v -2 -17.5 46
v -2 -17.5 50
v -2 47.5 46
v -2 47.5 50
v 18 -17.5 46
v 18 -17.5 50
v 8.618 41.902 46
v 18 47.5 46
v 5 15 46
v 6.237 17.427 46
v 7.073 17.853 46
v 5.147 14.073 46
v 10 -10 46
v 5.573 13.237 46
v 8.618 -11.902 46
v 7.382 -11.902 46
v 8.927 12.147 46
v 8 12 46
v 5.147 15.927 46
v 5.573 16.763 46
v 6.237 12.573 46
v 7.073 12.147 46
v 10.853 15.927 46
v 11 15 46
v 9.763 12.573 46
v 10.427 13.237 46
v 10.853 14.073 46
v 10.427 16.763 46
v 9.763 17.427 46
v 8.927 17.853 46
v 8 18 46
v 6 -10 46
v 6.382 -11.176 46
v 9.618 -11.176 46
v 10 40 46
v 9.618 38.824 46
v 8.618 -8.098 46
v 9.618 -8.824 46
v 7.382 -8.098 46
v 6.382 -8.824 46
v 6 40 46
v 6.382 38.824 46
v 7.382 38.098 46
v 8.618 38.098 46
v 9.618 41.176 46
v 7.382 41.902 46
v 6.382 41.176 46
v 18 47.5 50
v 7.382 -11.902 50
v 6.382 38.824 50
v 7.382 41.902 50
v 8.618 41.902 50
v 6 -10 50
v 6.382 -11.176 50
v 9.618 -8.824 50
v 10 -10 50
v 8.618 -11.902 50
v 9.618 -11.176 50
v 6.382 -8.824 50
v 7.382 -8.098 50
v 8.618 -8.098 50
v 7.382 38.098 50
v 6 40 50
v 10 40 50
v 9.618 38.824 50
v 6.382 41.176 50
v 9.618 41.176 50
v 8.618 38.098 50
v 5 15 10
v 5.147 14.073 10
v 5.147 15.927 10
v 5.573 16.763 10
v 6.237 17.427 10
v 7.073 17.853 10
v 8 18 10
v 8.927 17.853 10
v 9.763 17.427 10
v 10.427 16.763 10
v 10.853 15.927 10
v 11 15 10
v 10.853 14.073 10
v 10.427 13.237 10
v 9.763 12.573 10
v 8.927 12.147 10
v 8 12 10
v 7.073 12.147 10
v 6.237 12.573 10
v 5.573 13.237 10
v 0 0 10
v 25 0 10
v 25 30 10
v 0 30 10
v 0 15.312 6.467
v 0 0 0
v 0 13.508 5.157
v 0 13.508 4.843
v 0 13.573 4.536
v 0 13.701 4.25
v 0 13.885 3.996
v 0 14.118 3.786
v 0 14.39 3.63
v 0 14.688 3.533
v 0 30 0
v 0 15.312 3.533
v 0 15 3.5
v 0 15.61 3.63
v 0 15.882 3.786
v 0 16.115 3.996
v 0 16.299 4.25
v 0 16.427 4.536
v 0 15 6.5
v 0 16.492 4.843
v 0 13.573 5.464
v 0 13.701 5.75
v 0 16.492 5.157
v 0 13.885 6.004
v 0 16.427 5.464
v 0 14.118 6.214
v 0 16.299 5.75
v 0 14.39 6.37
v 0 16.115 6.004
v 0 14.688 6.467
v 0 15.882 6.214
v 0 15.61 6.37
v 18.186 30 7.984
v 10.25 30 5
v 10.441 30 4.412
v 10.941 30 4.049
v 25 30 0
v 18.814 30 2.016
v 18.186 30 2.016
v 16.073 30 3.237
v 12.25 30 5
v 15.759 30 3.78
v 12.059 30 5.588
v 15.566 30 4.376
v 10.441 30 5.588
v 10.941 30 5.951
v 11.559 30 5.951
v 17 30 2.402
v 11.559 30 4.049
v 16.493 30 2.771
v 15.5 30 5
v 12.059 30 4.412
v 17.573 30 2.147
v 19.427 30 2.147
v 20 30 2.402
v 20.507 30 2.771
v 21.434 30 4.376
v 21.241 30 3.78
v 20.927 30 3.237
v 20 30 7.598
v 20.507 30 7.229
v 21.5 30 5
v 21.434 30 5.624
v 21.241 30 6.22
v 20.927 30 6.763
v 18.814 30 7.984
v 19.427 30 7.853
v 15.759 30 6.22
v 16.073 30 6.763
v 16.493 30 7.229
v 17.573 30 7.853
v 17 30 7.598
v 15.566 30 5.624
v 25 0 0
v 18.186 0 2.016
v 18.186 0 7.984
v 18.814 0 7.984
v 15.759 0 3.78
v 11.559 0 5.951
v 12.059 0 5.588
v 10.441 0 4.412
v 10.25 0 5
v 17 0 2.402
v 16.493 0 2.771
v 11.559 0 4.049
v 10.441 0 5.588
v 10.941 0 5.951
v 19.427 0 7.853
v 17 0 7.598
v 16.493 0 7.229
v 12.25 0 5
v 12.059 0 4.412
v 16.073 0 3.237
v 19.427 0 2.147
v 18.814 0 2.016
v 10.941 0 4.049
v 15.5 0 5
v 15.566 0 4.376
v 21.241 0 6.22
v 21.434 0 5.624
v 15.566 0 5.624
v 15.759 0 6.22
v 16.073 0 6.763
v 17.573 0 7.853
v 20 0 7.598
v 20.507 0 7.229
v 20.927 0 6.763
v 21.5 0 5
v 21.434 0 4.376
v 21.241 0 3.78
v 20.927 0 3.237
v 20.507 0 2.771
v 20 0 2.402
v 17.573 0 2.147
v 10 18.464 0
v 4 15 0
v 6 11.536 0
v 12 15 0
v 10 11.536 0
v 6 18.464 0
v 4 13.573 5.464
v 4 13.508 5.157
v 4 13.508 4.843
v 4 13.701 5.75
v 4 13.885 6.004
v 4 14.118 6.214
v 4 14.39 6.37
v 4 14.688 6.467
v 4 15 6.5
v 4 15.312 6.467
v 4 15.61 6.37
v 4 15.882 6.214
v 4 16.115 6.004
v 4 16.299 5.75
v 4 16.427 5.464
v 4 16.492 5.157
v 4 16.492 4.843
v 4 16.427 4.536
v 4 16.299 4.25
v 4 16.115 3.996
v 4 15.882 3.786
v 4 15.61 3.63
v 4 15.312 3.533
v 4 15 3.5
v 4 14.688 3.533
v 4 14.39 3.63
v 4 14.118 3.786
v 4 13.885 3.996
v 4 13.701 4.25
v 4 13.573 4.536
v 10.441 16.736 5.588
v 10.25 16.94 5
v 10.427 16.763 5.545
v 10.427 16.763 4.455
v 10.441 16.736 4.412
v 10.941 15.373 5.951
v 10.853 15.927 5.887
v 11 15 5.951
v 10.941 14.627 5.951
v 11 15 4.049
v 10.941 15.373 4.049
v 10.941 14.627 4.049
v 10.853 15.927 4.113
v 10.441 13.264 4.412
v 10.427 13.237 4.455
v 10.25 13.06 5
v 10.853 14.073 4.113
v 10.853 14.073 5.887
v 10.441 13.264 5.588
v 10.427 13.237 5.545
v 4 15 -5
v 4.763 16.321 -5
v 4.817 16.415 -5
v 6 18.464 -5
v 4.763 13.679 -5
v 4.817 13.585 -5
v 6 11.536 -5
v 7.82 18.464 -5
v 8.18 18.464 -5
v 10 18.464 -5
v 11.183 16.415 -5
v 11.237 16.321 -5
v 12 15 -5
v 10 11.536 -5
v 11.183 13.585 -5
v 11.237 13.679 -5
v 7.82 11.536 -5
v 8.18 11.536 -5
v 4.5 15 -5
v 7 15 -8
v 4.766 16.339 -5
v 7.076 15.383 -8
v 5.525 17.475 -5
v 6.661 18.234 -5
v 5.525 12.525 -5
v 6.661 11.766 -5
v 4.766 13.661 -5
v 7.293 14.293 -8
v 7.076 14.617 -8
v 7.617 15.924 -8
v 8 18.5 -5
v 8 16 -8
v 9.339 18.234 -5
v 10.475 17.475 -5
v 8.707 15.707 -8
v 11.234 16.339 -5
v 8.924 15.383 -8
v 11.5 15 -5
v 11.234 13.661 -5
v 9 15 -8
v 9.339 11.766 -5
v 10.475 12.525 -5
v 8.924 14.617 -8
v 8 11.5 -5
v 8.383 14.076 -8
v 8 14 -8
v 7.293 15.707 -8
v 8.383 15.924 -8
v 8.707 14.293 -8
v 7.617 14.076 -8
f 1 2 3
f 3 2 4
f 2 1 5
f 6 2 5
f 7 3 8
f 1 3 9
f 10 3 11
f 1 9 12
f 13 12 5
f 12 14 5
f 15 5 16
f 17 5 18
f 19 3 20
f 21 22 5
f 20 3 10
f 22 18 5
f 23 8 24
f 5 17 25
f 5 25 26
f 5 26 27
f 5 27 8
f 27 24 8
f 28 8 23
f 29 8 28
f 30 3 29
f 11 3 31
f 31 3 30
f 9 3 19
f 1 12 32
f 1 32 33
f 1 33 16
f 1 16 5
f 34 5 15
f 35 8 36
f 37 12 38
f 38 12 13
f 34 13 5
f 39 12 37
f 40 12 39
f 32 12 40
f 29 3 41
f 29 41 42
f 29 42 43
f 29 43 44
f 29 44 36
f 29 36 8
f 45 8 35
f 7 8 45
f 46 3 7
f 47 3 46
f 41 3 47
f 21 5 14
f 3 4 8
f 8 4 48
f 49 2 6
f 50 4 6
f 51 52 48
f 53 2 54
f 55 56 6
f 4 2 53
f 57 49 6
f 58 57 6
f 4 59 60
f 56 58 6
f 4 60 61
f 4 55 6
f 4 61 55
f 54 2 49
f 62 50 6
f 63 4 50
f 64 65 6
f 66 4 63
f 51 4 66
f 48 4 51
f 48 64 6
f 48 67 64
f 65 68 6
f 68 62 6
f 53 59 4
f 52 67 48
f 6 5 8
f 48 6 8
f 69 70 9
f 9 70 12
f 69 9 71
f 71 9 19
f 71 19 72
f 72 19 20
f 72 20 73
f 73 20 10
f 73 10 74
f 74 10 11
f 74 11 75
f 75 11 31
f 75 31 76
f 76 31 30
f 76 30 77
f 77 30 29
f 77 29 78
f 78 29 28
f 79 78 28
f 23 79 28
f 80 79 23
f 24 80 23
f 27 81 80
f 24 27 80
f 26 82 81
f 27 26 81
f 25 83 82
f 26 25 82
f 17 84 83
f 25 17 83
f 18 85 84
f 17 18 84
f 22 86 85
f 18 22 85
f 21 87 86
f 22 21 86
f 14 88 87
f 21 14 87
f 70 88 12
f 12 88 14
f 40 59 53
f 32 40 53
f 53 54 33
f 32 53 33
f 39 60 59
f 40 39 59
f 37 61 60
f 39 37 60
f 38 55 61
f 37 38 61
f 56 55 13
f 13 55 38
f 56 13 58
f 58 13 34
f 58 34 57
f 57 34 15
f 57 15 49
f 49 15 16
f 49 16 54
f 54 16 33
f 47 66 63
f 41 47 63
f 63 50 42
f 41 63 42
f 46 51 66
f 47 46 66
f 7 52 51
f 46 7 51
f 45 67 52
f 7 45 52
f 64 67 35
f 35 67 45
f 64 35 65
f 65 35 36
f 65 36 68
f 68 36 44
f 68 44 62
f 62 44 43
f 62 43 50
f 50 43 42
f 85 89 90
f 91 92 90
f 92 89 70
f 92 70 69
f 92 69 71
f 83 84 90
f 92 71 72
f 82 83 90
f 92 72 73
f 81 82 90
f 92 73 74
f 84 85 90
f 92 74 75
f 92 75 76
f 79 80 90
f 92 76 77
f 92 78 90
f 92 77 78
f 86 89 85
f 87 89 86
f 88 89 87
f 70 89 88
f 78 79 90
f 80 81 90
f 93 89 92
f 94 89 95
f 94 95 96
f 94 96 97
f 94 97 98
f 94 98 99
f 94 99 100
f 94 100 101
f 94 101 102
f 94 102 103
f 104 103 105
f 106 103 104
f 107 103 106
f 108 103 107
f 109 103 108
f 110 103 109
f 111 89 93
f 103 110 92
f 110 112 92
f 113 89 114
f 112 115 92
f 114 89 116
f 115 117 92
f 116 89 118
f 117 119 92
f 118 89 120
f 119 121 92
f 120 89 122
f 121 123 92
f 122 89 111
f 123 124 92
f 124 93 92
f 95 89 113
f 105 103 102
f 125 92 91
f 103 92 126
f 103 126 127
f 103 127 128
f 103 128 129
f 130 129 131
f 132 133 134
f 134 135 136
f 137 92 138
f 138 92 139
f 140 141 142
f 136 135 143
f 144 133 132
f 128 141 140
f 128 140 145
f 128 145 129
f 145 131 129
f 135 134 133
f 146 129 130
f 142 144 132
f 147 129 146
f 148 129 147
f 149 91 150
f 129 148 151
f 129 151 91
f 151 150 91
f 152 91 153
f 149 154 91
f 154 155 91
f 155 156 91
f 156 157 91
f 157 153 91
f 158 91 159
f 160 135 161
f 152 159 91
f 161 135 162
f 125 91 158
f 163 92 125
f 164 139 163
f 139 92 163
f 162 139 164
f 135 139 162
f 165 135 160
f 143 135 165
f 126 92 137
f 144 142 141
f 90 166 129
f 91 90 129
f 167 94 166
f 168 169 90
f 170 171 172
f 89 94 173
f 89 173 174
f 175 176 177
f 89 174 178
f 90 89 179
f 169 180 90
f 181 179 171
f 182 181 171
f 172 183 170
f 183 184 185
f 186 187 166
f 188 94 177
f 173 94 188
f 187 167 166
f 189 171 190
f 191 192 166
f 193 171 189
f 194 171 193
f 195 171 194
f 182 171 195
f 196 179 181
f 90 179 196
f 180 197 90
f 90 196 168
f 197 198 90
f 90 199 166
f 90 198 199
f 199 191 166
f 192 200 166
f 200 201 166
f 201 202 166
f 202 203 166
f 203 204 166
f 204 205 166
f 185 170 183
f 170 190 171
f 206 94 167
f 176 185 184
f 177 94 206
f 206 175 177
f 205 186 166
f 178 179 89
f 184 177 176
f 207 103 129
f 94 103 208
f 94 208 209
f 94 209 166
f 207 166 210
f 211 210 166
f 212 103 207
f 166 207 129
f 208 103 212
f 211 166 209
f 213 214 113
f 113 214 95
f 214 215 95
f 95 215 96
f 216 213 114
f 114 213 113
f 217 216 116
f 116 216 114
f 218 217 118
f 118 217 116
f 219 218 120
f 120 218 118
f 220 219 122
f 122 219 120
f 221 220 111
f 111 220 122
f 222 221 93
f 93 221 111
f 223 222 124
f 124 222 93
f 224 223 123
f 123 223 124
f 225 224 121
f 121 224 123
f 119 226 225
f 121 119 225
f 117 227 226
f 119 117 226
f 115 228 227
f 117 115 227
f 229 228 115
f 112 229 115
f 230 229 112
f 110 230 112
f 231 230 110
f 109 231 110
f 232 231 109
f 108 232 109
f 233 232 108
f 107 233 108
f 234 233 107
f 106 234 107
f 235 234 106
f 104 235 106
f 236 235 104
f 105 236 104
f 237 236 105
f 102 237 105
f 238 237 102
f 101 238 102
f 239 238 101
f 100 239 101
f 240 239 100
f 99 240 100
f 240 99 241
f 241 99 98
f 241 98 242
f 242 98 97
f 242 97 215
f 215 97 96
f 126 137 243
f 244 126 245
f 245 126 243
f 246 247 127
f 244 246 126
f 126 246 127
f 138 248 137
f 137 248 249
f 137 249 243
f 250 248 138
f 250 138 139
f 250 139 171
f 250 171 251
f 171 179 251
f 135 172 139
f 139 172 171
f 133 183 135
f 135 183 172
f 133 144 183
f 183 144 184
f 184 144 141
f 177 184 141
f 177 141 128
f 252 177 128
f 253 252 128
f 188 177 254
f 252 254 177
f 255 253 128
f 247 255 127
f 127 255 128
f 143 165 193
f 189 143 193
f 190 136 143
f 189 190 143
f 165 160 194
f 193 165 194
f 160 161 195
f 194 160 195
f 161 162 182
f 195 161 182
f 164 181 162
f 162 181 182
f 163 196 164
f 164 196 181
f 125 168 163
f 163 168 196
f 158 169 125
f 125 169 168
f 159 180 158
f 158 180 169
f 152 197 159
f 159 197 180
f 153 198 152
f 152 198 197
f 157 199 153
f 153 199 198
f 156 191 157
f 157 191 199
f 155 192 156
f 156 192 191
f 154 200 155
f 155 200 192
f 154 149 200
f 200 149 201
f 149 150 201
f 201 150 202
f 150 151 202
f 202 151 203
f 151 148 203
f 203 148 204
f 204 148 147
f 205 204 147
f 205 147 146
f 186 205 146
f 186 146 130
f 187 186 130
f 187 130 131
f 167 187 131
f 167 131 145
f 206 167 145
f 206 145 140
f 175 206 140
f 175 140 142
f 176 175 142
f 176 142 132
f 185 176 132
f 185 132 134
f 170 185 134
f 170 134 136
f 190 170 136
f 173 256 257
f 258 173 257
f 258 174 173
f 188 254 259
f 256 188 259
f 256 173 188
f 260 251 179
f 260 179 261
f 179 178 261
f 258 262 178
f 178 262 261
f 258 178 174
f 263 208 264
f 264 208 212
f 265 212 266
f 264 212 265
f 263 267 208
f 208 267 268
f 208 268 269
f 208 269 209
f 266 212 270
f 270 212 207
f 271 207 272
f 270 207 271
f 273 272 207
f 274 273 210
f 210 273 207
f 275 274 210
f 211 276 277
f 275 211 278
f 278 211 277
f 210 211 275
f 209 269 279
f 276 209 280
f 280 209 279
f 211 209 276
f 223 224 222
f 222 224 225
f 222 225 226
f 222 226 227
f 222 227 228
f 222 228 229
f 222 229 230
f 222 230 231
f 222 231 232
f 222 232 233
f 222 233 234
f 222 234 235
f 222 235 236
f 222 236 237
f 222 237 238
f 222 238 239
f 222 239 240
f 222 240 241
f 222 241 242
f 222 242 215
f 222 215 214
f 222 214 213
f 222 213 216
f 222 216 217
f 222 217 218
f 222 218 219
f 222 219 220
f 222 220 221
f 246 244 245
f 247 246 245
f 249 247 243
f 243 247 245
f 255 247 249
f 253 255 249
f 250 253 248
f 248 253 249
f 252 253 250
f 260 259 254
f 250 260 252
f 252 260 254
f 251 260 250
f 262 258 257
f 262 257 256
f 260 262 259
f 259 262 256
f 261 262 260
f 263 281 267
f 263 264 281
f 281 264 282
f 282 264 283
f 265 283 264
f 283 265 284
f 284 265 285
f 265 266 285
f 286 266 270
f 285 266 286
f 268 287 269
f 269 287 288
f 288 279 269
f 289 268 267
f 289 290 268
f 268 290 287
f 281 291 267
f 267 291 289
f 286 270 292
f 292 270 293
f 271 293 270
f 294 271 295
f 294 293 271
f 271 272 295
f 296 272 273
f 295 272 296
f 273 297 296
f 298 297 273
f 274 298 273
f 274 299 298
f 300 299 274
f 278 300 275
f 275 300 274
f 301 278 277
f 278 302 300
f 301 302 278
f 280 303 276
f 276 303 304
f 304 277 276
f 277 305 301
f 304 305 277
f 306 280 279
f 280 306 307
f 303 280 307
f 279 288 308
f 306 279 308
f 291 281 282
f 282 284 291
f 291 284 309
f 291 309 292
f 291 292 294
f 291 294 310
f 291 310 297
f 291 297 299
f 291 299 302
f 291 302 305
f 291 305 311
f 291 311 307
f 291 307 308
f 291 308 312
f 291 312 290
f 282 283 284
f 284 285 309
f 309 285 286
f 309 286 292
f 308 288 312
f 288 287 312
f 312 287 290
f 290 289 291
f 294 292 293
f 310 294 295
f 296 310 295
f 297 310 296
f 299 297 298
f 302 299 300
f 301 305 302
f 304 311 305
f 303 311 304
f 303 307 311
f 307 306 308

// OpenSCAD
// catnozzle v0.0.0 alfa
// bloque calefactor
// GNU GPL v3
// Chema (josema@pentabyte.es) and contributors

largo = 25;
ancho = 30;
alto = 10;
rpral = 6/2;
term = 1.5;
cal = 6/2;

module bloquecal()
{

	difference() {
		//bloque
		cube([largo,ancho,alto]);
		
		//hueco del portafilamento
		translate([3+rpral+2, ancho/2, -1])
		cylinder(h = alto+2, r1 = rpral, r2=rpral);
		
		//hueco del calefactor
		rotate([90,0,0])
		translate([3+rpral*2+cal+term*3+2, alto/2, -ancho-1])
		cylinder(h = ancho+2, r= cal, $fn=30);

		//hueco del termistor
		rotate([90,0,0])
		translate([3+rpral*2+term*1.5, alto/2, -ancho-1])
		cylinder(h = ancho+2, r= term/1.5, $fn=10);

		//hueco roscado fijación
		rotate([0,90,0])
		translate([-alto/2, ancho/2, -1])
		cylinder(h = 5, r= 1.5, $fn=30);
	}


}

bloquecal();

translate([10-2,15,-5]){
cylinder(r=3,h=55,$fn=20);
cylinder(r=4,h=6,$fn=6);
translate([0,0,-3])
cylinder(r1=1,r2=3.5,h=3,$fn=16);

difference(){
		translate([0,0,53])
		cube([20,65,4], center = true);
		translate([0,0,53])
		translate([0,25,1]) cylinder(r=2,h=10,$fn=10,center=true);
		translate([0,0,53])
		translate([0,-25,1]) cylinder(r=2,h=10,$fn=10,center=true);
		
	
	}
}
